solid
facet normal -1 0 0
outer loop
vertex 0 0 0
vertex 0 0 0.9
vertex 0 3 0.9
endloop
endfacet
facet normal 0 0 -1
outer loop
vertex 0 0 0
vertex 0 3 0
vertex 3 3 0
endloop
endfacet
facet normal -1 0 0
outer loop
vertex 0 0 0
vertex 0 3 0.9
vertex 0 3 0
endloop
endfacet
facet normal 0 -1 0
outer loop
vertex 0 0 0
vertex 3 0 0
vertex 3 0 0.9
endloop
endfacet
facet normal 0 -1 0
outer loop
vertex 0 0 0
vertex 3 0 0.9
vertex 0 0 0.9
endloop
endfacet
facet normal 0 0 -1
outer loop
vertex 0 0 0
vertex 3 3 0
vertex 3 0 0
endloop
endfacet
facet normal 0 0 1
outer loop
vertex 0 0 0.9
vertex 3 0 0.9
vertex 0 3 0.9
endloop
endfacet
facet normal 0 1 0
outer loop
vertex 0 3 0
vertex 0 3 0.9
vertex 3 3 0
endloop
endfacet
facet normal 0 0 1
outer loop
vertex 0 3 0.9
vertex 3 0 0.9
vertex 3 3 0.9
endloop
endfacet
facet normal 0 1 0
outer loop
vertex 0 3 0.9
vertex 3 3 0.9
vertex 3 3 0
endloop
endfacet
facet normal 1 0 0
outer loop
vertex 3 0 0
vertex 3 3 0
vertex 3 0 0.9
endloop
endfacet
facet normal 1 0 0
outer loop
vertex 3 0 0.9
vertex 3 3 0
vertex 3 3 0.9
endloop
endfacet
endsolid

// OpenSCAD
/* Warning, this is a very basic generator with a lot of approximation 
input data : [VQFN, NFA, 3x3x0.9mm, 16, , A, C04-01105A]
generated by com.zoubworld.electronics.cad.model3d.Basic
Date : Sun Feb 15 10:50:49 CET 2026
*/

//body
color("black")
translate([0,0,0])
cube([3.0,3.0,0.9], center=false);
